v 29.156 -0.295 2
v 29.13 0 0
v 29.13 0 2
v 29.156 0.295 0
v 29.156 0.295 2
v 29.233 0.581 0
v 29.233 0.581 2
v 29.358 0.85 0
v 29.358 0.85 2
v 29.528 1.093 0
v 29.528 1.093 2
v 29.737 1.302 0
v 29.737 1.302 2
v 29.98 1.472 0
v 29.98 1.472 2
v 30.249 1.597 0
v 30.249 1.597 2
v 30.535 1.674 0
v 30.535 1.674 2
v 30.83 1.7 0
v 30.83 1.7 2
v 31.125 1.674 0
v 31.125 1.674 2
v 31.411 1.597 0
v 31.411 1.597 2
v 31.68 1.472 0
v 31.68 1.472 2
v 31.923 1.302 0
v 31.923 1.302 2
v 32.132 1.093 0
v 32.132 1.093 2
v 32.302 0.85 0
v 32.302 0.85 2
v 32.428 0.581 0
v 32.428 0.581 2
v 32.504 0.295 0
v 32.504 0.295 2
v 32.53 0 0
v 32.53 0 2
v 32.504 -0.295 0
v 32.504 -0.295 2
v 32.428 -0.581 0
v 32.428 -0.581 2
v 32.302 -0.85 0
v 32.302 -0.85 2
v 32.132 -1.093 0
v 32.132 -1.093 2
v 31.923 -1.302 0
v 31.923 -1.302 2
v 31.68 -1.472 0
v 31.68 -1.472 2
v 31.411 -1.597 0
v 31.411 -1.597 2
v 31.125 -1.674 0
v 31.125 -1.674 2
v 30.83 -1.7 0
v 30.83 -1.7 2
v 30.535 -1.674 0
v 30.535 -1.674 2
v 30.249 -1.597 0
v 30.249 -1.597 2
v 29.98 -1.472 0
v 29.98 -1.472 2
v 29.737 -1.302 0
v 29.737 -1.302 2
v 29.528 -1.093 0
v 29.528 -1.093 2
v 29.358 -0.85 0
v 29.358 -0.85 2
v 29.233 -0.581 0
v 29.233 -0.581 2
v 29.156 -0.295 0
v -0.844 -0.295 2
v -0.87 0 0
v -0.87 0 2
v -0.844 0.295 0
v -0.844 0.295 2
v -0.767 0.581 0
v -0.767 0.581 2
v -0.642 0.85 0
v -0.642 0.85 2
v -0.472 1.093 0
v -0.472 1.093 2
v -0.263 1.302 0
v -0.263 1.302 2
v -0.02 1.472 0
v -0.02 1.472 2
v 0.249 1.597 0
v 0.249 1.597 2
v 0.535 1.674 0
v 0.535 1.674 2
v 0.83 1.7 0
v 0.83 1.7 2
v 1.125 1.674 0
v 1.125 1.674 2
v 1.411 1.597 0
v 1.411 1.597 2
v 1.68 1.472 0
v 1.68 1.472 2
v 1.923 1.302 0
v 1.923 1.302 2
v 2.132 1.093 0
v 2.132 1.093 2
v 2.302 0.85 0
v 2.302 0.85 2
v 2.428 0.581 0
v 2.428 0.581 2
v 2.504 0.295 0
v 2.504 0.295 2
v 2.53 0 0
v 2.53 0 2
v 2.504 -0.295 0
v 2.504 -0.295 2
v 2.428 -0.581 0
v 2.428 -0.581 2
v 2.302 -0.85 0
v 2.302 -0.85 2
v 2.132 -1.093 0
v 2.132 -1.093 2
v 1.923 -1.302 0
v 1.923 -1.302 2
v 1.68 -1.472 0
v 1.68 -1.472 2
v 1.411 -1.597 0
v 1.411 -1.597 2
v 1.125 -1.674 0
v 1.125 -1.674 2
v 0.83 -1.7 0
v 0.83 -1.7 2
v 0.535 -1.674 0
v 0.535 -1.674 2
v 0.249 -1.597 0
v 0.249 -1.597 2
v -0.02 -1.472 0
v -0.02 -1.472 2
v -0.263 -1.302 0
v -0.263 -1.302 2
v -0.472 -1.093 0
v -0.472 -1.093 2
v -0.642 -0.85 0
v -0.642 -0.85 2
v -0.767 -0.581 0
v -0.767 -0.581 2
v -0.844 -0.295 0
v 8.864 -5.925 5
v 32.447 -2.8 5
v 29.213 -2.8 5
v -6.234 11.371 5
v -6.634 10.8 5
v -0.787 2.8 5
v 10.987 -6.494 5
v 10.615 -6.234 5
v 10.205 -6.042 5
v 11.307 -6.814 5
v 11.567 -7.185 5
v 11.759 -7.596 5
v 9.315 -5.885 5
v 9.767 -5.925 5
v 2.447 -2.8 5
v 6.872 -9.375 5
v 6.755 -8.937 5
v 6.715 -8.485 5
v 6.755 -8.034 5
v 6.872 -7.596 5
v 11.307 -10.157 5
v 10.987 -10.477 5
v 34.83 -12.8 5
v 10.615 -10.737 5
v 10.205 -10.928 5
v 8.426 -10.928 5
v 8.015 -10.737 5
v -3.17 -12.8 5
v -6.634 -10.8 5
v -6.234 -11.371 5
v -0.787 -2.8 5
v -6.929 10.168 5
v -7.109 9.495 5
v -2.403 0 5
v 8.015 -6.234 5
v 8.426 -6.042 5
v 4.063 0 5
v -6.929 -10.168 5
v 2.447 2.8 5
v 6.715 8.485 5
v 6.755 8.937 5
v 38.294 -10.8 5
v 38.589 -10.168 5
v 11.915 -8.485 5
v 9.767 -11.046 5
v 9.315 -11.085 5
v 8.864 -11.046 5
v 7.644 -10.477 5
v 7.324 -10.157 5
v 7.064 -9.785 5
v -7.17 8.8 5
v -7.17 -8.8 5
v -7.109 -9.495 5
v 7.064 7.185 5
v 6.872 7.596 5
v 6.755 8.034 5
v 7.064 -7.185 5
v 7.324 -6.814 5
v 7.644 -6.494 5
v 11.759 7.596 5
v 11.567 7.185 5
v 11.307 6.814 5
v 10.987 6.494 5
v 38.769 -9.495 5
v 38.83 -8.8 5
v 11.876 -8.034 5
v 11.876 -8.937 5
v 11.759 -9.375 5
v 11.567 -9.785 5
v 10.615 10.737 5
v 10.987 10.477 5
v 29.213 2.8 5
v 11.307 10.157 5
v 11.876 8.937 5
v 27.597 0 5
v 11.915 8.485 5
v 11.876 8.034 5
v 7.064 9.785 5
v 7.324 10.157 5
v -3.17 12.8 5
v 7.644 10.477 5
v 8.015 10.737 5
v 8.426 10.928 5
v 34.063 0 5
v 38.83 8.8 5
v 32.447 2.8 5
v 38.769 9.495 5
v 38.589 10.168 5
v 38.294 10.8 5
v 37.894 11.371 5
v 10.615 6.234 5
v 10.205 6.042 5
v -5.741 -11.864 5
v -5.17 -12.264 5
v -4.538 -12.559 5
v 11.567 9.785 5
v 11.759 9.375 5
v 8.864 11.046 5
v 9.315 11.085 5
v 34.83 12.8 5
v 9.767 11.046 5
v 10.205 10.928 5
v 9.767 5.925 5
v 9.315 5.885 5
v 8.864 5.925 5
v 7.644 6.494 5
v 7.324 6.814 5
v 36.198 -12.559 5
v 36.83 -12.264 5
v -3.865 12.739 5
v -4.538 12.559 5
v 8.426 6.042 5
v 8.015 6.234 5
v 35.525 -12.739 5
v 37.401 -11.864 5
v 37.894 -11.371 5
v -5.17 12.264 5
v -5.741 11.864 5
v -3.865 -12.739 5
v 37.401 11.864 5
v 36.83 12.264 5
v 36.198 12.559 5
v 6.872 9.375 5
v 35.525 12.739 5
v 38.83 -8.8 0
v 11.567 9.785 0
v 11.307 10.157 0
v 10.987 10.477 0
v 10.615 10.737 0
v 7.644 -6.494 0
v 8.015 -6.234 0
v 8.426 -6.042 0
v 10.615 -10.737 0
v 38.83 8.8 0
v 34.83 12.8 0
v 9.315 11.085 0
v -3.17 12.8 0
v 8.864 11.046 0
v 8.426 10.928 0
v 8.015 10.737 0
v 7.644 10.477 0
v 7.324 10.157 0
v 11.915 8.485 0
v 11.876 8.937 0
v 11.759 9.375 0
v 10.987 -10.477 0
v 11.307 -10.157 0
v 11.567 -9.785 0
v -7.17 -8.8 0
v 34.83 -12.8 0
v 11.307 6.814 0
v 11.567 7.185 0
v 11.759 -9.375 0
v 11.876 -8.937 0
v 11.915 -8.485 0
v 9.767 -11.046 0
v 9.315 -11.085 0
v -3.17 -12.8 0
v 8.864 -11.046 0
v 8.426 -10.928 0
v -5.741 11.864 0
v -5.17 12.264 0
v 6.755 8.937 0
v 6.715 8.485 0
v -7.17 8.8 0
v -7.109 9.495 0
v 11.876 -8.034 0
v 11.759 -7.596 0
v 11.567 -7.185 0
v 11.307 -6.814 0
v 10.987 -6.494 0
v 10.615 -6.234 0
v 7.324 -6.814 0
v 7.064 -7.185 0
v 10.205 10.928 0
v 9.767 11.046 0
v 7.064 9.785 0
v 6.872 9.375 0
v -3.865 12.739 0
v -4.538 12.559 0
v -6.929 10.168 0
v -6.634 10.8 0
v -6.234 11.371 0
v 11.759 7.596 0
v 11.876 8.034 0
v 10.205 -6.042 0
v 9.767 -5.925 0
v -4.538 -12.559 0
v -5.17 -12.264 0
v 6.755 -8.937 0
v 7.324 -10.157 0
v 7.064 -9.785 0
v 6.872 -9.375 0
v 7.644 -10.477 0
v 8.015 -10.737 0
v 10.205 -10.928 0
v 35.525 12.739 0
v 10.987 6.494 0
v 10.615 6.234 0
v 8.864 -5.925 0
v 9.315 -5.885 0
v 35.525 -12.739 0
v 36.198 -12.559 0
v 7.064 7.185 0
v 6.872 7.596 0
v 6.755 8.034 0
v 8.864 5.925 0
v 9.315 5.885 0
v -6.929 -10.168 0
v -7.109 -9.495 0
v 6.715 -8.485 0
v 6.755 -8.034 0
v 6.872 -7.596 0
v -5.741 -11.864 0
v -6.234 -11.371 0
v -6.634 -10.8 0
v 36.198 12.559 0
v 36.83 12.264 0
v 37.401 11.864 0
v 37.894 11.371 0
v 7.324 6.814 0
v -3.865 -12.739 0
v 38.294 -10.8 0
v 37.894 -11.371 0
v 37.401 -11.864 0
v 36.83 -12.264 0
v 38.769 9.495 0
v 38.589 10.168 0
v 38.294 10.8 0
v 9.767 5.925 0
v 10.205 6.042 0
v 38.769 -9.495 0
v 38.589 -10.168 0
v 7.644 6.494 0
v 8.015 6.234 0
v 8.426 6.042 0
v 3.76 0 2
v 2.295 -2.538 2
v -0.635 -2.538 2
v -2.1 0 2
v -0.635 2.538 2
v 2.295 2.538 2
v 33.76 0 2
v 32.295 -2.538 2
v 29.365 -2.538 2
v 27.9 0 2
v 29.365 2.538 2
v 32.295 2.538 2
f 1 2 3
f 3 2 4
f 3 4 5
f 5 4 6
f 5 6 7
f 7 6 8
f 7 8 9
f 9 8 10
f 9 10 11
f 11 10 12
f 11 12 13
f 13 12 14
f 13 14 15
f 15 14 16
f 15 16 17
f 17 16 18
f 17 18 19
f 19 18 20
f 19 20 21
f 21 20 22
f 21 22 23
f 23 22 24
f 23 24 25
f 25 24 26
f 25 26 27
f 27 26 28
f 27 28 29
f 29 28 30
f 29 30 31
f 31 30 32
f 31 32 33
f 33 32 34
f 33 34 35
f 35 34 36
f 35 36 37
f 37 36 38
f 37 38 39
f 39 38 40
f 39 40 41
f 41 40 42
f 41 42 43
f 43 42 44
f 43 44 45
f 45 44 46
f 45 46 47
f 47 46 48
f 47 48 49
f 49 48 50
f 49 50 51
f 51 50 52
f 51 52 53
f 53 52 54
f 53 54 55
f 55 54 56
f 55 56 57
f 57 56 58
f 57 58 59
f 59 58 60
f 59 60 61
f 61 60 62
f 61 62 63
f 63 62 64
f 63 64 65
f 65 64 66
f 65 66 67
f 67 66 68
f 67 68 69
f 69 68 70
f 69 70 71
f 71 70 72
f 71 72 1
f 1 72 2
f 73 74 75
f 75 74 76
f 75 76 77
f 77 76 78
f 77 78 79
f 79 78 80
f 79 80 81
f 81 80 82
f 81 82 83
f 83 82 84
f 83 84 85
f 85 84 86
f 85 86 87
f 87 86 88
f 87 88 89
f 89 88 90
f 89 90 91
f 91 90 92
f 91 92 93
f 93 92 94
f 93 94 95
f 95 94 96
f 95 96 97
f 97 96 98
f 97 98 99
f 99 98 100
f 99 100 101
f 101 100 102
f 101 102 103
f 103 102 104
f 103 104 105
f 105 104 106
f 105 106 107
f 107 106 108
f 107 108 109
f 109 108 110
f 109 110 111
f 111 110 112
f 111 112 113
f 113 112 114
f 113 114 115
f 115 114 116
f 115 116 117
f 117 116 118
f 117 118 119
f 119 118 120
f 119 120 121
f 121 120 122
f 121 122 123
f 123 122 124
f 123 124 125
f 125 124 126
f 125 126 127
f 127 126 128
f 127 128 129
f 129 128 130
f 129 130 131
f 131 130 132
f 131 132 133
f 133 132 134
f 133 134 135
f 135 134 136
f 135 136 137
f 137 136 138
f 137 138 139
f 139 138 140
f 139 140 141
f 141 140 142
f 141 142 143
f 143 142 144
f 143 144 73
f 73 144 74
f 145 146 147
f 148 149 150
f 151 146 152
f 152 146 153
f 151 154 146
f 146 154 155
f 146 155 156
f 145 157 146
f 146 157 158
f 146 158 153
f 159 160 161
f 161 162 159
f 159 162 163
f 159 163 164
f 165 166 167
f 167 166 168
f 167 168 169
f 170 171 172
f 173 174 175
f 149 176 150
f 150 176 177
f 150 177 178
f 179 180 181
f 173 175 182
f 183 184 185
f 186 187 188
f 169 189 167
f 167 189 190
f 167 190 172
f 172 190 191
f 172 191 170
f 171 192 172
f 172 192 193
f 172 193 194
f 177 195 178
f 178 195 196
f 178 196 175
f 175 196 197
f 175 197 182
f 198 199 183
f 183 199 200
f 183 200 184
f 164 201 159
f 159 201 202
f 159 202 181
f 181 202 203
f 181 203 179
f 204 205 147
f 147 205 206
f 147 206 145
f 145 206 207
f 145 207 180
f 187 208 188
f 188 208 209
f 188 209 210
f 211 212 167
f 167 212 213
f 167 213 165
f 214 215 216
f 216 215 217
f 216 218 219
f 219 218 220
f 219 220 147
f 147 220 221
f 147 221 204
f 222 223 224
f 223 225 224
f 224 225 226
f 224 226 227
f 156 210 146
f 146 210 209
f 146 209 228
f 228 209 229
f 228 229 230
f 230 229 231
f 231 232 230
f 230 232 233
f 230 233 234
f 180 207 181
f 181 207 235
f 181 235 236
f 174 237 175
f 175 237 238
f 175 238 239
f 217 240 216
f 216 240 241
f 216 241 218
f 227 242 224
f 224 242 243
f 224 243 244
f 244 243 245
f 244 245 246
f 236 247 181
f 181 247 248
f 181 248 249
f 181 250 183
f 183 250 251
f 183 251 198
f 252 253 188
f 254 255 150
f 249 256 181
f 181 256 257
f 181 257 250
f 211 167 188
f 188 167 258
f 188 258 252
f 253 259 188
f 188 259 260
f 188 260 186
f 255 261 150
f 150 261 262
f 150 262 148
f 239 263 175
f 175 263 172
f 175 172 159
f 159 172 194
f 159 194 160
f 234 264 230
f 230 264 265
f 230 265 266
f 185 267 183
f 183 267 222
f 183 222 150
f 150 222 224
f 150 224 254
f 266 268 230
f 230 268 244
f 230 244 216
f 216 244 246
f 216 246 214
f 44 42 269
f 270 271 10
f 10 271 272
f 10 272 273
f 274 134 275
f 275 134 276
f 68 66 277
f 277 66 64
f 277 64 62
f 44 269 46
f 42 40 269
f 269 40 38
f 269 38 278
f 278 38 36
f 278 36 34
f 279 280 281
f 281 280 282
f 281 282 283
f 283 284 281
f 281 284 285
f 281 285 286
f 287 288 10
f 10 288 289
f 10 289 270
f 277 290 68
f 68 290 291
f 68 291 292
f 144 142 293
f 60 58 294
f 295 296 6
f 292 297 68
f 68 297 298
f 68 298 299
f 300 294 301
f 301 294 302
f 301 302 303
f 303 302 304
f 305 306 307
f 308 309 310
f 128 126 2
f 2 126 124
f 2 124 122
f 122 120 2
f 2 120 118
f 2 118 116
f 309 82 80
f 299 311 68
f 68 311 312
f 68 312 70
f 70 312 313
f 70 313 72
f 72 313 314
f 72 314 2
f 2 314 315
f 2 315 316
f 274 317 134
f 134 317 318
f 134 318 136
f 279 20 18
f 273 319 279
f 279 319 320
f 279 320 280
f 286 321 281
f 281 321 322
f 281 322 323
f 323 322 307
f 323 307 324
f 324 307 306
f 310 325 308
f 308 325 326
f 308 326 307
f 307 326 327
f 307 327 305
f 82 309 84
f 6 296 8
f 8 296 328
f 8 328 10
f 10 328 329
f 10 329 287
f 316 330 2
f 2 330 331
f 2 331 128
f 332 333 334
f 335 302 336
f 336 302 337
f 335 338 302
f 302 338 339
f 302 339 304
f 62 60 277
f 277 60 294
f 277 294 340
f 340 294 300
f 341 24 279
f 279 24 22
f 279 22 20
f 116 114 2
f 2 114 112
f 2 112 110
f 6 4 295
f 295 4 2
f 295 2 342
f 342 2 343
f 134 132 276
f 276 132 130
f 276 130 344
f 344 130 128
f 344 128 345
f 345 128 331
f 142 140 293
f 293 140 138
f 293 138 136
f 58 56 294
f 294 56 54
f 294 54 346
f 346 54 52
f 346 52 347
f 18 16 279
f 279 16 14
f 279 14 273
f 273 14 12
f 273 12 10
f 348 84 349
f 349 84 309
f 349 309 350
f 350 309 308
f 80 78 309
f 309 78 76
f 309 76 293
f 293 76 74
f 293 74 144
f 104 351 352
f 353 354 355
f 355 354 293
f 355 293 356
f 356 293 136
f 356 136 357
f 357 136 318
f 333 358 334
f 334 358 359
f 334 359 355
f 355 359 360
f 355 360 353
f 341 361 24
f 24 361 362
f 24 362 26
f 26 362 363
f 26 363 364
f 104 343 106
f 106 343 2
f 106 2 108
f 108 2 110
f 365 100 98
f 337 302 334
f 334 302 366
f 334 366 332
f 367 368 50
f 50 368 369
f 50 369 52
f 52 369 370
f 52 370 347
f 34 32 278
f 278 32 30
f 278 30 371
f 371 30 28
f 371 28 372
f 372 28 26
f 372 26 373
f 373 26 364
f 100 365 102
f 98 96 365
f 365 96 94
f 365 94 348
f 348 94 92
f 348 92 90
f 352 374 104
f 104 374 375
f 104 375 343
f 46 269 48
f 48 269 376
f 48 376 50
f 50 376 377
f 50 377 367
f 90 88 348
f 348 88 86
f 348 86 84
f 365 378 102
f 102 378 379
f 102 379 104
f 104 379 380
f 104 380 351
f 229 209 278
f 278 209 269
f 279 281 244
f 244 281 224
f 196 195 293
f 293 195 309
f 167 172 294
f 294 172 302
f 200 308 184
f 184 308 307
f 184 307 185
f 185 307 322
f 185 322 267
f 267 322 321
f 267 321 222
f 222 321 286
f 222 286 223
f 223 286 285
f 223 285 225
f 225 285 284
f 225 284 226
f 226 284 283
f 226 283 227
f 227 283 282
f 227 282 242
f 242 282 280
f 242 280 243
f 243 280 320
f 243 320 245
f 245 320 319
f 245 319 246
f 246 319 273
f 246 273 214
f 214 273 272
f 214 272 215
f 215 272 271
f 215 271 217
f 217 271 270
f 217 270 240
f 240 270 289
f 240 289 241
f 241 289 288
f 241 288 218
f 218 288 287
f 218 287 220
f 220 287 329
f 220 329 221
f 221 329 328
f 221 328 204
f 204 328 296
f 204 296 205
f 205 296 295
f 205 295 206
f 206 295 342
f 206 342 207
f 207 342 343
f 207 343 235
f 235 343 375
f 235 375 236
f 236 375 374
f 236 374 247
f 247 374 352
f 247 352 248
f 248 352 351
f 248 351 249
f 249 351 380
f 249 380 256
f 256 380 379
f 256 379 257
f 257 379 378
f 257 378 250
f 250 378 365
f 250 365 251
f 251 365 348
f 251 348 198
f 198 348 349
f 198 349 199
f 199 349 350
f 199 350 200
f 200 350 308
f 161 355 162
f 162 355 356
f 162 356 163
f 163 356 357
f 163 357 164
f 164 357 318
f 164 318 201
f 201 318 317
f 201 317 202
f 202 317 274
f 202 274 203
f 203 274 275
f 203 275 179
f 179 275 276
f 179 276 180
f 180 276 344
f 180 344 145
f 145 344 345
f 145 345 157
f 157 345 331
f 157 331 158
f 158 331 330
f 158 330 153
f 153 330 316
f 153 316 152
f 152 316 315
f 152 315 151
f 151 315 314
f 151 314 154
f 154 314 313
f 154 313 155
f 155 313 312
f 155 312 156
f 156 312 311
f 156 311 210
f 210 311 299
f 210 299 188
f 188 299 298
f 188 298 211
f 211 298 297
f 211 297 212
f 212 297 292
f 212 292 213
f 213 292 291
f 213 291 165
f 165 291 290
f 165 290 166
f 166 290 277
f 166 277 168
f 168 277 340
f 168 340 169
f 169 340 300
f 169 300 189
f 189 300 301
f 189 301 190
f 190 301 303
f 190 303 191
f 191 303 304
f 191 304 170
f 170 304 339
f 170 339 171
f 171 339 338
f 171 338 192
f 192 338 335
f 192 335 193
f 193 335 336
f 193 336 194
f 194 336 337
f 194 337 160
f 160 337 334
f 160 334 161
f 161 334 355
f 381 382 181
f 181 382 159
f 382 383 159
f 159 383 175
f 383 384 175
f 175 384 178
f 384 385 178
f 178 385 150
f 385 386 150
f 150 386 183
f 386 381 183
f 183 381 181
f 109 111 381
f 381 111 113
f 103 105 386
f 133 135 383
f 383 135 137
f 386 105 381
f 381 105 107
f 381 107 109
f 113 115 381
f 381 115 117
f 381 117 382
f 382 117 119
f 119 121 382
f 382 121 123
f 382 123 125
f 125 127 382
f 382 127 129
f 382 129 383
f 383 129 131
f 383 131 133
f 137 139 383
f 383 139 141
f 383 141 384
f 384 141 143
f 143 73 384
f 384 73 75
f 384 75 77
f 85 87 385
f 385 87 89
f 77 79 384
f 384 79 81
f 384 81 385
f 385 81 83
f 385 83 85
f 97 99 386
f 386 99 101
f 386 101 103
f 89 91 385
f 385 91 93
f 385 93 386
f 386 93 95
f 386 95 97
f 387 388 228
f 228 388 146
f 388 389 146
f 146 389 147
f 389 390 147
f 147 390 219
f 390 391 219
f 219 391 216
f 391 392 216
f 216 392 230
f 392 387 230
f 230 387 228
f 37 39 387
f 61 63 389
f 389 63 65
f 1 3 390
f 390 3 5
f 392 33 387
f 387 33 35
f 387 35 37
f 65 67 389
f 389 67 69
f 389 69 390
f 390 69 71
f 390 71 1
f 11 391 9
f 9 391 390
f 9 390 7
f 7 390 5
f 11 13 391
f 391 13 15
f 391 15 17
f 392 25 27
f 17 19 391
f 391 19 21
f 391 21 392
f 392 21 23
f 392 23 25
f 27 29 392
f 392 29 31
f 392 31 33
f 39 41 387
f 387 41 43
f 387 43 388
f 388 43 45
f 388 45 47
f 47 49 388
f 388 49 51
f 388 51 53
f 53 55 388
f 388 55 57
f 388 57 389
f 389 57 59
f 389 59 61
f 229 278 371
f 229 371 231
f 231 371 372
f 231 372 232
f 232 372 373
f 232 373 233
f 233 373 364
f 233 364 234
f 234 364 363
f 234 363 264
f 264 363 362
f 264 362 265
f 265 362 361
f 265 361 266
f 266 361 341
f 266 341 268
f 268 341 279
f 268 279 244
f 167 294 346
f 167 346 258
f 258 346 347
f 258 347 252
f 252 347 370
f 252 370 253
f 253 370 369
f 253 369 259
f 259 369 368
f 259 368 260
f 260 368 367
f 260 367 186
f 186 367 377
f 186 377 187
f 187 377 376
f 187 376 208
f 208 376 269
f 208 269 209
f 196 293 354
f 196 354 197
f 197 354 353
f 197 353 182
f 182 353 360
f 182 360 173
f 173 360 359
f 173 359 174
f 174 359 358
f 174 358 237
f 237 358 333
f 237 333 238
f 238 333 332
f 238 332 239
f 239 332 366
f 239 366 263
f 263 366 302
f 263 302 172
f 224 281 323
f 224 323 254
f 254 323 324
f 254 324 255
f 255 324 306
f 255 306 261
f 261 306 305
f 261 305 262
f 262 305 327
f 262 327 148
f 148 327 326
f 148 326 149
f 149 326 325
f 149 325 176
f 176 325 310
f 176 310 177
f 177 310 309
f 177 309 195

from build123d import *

# Parameters (mm, degrees)
ESQUISSE1_W             = 46
ESQUISSE1_H             = 25.6
ESQUISSE1_R             = 1.7
ESQUISSE1_R_2           = 2.6
BOSS_EXTRU_1_DEPTH      = 5
ENL_V_MAT_EXTRU_2_DEPTH = 3
ENL_V_MAT_EXTRU_2_TAPER = 5
CONG_1_R                = 4


with BuildPart() as part:
    # Esquisse1 → Boss.-Extru.1 (new body)
    with BuildSketch(Plane.XY):
        with Locations((15.830047476, 0)):
            Rectangle(ESQUISSE1_W, ESQUISSE1_H)
        with Locations((0.830047476, 0)):
            Circle(ESQUISSE1_R, mode=Mode.SUBTRACT)
        with Locations((9.315328851, 8.485281374)):
            Circle(ESQUISSE1_R_2, mode=Mode.SUBTRACT)
        with Locations((9.315328851, -8.485281374)):
            Circle(ESQUISSE1_R_2, mode=Mode.SUBTRACT)
        with Locations((30.830047476, 0)):
            Circle(ESQUISSE1_R, mode=Mode.SUBTRACT)
    extrude(amount=BOSS_EXTRU_1_DEPTH)

    # Esquisse3 → Enlèv. mat.-Extru.2 (cut)
    with BuildSketch(Plane.XY.offset(5)):
        Polygon((4.063208984, 0), (2.44662823, 2.8), (-0.786533277, 2.8), (-2.403114031, 0), (-0.786533277, -2.8), (2.44662823, -2.8), align=None)
        Polygon((34.063208984, 0), (32.44662823, 2.8), (29.213466723, 2.8), (27.596885969, 0), (29.213466723, -2.8), (32.44662823, -2.8), align=None)
    extrude(amount=-ENL_V_MAT_EXTRU_2_DEPTH, taper=ENL_V_MAT_EXTRU_2_TAPER, mode=Mode.SUBTRACT)

    # Congé1
    cong_1_edges = [part.edges().sort_by_distance(p)[0] for p in [
        (38.830047476, -12.8, 2.5),
        (-7.169952524, -12.8, 2.5),
        (-7.169952524, 12.8, 2.5),
        (38.830047476, 12.8, 2.5),
    ]]
    fillet(cong_1_edges, radius=CONG_1_R)


solid = part.part
